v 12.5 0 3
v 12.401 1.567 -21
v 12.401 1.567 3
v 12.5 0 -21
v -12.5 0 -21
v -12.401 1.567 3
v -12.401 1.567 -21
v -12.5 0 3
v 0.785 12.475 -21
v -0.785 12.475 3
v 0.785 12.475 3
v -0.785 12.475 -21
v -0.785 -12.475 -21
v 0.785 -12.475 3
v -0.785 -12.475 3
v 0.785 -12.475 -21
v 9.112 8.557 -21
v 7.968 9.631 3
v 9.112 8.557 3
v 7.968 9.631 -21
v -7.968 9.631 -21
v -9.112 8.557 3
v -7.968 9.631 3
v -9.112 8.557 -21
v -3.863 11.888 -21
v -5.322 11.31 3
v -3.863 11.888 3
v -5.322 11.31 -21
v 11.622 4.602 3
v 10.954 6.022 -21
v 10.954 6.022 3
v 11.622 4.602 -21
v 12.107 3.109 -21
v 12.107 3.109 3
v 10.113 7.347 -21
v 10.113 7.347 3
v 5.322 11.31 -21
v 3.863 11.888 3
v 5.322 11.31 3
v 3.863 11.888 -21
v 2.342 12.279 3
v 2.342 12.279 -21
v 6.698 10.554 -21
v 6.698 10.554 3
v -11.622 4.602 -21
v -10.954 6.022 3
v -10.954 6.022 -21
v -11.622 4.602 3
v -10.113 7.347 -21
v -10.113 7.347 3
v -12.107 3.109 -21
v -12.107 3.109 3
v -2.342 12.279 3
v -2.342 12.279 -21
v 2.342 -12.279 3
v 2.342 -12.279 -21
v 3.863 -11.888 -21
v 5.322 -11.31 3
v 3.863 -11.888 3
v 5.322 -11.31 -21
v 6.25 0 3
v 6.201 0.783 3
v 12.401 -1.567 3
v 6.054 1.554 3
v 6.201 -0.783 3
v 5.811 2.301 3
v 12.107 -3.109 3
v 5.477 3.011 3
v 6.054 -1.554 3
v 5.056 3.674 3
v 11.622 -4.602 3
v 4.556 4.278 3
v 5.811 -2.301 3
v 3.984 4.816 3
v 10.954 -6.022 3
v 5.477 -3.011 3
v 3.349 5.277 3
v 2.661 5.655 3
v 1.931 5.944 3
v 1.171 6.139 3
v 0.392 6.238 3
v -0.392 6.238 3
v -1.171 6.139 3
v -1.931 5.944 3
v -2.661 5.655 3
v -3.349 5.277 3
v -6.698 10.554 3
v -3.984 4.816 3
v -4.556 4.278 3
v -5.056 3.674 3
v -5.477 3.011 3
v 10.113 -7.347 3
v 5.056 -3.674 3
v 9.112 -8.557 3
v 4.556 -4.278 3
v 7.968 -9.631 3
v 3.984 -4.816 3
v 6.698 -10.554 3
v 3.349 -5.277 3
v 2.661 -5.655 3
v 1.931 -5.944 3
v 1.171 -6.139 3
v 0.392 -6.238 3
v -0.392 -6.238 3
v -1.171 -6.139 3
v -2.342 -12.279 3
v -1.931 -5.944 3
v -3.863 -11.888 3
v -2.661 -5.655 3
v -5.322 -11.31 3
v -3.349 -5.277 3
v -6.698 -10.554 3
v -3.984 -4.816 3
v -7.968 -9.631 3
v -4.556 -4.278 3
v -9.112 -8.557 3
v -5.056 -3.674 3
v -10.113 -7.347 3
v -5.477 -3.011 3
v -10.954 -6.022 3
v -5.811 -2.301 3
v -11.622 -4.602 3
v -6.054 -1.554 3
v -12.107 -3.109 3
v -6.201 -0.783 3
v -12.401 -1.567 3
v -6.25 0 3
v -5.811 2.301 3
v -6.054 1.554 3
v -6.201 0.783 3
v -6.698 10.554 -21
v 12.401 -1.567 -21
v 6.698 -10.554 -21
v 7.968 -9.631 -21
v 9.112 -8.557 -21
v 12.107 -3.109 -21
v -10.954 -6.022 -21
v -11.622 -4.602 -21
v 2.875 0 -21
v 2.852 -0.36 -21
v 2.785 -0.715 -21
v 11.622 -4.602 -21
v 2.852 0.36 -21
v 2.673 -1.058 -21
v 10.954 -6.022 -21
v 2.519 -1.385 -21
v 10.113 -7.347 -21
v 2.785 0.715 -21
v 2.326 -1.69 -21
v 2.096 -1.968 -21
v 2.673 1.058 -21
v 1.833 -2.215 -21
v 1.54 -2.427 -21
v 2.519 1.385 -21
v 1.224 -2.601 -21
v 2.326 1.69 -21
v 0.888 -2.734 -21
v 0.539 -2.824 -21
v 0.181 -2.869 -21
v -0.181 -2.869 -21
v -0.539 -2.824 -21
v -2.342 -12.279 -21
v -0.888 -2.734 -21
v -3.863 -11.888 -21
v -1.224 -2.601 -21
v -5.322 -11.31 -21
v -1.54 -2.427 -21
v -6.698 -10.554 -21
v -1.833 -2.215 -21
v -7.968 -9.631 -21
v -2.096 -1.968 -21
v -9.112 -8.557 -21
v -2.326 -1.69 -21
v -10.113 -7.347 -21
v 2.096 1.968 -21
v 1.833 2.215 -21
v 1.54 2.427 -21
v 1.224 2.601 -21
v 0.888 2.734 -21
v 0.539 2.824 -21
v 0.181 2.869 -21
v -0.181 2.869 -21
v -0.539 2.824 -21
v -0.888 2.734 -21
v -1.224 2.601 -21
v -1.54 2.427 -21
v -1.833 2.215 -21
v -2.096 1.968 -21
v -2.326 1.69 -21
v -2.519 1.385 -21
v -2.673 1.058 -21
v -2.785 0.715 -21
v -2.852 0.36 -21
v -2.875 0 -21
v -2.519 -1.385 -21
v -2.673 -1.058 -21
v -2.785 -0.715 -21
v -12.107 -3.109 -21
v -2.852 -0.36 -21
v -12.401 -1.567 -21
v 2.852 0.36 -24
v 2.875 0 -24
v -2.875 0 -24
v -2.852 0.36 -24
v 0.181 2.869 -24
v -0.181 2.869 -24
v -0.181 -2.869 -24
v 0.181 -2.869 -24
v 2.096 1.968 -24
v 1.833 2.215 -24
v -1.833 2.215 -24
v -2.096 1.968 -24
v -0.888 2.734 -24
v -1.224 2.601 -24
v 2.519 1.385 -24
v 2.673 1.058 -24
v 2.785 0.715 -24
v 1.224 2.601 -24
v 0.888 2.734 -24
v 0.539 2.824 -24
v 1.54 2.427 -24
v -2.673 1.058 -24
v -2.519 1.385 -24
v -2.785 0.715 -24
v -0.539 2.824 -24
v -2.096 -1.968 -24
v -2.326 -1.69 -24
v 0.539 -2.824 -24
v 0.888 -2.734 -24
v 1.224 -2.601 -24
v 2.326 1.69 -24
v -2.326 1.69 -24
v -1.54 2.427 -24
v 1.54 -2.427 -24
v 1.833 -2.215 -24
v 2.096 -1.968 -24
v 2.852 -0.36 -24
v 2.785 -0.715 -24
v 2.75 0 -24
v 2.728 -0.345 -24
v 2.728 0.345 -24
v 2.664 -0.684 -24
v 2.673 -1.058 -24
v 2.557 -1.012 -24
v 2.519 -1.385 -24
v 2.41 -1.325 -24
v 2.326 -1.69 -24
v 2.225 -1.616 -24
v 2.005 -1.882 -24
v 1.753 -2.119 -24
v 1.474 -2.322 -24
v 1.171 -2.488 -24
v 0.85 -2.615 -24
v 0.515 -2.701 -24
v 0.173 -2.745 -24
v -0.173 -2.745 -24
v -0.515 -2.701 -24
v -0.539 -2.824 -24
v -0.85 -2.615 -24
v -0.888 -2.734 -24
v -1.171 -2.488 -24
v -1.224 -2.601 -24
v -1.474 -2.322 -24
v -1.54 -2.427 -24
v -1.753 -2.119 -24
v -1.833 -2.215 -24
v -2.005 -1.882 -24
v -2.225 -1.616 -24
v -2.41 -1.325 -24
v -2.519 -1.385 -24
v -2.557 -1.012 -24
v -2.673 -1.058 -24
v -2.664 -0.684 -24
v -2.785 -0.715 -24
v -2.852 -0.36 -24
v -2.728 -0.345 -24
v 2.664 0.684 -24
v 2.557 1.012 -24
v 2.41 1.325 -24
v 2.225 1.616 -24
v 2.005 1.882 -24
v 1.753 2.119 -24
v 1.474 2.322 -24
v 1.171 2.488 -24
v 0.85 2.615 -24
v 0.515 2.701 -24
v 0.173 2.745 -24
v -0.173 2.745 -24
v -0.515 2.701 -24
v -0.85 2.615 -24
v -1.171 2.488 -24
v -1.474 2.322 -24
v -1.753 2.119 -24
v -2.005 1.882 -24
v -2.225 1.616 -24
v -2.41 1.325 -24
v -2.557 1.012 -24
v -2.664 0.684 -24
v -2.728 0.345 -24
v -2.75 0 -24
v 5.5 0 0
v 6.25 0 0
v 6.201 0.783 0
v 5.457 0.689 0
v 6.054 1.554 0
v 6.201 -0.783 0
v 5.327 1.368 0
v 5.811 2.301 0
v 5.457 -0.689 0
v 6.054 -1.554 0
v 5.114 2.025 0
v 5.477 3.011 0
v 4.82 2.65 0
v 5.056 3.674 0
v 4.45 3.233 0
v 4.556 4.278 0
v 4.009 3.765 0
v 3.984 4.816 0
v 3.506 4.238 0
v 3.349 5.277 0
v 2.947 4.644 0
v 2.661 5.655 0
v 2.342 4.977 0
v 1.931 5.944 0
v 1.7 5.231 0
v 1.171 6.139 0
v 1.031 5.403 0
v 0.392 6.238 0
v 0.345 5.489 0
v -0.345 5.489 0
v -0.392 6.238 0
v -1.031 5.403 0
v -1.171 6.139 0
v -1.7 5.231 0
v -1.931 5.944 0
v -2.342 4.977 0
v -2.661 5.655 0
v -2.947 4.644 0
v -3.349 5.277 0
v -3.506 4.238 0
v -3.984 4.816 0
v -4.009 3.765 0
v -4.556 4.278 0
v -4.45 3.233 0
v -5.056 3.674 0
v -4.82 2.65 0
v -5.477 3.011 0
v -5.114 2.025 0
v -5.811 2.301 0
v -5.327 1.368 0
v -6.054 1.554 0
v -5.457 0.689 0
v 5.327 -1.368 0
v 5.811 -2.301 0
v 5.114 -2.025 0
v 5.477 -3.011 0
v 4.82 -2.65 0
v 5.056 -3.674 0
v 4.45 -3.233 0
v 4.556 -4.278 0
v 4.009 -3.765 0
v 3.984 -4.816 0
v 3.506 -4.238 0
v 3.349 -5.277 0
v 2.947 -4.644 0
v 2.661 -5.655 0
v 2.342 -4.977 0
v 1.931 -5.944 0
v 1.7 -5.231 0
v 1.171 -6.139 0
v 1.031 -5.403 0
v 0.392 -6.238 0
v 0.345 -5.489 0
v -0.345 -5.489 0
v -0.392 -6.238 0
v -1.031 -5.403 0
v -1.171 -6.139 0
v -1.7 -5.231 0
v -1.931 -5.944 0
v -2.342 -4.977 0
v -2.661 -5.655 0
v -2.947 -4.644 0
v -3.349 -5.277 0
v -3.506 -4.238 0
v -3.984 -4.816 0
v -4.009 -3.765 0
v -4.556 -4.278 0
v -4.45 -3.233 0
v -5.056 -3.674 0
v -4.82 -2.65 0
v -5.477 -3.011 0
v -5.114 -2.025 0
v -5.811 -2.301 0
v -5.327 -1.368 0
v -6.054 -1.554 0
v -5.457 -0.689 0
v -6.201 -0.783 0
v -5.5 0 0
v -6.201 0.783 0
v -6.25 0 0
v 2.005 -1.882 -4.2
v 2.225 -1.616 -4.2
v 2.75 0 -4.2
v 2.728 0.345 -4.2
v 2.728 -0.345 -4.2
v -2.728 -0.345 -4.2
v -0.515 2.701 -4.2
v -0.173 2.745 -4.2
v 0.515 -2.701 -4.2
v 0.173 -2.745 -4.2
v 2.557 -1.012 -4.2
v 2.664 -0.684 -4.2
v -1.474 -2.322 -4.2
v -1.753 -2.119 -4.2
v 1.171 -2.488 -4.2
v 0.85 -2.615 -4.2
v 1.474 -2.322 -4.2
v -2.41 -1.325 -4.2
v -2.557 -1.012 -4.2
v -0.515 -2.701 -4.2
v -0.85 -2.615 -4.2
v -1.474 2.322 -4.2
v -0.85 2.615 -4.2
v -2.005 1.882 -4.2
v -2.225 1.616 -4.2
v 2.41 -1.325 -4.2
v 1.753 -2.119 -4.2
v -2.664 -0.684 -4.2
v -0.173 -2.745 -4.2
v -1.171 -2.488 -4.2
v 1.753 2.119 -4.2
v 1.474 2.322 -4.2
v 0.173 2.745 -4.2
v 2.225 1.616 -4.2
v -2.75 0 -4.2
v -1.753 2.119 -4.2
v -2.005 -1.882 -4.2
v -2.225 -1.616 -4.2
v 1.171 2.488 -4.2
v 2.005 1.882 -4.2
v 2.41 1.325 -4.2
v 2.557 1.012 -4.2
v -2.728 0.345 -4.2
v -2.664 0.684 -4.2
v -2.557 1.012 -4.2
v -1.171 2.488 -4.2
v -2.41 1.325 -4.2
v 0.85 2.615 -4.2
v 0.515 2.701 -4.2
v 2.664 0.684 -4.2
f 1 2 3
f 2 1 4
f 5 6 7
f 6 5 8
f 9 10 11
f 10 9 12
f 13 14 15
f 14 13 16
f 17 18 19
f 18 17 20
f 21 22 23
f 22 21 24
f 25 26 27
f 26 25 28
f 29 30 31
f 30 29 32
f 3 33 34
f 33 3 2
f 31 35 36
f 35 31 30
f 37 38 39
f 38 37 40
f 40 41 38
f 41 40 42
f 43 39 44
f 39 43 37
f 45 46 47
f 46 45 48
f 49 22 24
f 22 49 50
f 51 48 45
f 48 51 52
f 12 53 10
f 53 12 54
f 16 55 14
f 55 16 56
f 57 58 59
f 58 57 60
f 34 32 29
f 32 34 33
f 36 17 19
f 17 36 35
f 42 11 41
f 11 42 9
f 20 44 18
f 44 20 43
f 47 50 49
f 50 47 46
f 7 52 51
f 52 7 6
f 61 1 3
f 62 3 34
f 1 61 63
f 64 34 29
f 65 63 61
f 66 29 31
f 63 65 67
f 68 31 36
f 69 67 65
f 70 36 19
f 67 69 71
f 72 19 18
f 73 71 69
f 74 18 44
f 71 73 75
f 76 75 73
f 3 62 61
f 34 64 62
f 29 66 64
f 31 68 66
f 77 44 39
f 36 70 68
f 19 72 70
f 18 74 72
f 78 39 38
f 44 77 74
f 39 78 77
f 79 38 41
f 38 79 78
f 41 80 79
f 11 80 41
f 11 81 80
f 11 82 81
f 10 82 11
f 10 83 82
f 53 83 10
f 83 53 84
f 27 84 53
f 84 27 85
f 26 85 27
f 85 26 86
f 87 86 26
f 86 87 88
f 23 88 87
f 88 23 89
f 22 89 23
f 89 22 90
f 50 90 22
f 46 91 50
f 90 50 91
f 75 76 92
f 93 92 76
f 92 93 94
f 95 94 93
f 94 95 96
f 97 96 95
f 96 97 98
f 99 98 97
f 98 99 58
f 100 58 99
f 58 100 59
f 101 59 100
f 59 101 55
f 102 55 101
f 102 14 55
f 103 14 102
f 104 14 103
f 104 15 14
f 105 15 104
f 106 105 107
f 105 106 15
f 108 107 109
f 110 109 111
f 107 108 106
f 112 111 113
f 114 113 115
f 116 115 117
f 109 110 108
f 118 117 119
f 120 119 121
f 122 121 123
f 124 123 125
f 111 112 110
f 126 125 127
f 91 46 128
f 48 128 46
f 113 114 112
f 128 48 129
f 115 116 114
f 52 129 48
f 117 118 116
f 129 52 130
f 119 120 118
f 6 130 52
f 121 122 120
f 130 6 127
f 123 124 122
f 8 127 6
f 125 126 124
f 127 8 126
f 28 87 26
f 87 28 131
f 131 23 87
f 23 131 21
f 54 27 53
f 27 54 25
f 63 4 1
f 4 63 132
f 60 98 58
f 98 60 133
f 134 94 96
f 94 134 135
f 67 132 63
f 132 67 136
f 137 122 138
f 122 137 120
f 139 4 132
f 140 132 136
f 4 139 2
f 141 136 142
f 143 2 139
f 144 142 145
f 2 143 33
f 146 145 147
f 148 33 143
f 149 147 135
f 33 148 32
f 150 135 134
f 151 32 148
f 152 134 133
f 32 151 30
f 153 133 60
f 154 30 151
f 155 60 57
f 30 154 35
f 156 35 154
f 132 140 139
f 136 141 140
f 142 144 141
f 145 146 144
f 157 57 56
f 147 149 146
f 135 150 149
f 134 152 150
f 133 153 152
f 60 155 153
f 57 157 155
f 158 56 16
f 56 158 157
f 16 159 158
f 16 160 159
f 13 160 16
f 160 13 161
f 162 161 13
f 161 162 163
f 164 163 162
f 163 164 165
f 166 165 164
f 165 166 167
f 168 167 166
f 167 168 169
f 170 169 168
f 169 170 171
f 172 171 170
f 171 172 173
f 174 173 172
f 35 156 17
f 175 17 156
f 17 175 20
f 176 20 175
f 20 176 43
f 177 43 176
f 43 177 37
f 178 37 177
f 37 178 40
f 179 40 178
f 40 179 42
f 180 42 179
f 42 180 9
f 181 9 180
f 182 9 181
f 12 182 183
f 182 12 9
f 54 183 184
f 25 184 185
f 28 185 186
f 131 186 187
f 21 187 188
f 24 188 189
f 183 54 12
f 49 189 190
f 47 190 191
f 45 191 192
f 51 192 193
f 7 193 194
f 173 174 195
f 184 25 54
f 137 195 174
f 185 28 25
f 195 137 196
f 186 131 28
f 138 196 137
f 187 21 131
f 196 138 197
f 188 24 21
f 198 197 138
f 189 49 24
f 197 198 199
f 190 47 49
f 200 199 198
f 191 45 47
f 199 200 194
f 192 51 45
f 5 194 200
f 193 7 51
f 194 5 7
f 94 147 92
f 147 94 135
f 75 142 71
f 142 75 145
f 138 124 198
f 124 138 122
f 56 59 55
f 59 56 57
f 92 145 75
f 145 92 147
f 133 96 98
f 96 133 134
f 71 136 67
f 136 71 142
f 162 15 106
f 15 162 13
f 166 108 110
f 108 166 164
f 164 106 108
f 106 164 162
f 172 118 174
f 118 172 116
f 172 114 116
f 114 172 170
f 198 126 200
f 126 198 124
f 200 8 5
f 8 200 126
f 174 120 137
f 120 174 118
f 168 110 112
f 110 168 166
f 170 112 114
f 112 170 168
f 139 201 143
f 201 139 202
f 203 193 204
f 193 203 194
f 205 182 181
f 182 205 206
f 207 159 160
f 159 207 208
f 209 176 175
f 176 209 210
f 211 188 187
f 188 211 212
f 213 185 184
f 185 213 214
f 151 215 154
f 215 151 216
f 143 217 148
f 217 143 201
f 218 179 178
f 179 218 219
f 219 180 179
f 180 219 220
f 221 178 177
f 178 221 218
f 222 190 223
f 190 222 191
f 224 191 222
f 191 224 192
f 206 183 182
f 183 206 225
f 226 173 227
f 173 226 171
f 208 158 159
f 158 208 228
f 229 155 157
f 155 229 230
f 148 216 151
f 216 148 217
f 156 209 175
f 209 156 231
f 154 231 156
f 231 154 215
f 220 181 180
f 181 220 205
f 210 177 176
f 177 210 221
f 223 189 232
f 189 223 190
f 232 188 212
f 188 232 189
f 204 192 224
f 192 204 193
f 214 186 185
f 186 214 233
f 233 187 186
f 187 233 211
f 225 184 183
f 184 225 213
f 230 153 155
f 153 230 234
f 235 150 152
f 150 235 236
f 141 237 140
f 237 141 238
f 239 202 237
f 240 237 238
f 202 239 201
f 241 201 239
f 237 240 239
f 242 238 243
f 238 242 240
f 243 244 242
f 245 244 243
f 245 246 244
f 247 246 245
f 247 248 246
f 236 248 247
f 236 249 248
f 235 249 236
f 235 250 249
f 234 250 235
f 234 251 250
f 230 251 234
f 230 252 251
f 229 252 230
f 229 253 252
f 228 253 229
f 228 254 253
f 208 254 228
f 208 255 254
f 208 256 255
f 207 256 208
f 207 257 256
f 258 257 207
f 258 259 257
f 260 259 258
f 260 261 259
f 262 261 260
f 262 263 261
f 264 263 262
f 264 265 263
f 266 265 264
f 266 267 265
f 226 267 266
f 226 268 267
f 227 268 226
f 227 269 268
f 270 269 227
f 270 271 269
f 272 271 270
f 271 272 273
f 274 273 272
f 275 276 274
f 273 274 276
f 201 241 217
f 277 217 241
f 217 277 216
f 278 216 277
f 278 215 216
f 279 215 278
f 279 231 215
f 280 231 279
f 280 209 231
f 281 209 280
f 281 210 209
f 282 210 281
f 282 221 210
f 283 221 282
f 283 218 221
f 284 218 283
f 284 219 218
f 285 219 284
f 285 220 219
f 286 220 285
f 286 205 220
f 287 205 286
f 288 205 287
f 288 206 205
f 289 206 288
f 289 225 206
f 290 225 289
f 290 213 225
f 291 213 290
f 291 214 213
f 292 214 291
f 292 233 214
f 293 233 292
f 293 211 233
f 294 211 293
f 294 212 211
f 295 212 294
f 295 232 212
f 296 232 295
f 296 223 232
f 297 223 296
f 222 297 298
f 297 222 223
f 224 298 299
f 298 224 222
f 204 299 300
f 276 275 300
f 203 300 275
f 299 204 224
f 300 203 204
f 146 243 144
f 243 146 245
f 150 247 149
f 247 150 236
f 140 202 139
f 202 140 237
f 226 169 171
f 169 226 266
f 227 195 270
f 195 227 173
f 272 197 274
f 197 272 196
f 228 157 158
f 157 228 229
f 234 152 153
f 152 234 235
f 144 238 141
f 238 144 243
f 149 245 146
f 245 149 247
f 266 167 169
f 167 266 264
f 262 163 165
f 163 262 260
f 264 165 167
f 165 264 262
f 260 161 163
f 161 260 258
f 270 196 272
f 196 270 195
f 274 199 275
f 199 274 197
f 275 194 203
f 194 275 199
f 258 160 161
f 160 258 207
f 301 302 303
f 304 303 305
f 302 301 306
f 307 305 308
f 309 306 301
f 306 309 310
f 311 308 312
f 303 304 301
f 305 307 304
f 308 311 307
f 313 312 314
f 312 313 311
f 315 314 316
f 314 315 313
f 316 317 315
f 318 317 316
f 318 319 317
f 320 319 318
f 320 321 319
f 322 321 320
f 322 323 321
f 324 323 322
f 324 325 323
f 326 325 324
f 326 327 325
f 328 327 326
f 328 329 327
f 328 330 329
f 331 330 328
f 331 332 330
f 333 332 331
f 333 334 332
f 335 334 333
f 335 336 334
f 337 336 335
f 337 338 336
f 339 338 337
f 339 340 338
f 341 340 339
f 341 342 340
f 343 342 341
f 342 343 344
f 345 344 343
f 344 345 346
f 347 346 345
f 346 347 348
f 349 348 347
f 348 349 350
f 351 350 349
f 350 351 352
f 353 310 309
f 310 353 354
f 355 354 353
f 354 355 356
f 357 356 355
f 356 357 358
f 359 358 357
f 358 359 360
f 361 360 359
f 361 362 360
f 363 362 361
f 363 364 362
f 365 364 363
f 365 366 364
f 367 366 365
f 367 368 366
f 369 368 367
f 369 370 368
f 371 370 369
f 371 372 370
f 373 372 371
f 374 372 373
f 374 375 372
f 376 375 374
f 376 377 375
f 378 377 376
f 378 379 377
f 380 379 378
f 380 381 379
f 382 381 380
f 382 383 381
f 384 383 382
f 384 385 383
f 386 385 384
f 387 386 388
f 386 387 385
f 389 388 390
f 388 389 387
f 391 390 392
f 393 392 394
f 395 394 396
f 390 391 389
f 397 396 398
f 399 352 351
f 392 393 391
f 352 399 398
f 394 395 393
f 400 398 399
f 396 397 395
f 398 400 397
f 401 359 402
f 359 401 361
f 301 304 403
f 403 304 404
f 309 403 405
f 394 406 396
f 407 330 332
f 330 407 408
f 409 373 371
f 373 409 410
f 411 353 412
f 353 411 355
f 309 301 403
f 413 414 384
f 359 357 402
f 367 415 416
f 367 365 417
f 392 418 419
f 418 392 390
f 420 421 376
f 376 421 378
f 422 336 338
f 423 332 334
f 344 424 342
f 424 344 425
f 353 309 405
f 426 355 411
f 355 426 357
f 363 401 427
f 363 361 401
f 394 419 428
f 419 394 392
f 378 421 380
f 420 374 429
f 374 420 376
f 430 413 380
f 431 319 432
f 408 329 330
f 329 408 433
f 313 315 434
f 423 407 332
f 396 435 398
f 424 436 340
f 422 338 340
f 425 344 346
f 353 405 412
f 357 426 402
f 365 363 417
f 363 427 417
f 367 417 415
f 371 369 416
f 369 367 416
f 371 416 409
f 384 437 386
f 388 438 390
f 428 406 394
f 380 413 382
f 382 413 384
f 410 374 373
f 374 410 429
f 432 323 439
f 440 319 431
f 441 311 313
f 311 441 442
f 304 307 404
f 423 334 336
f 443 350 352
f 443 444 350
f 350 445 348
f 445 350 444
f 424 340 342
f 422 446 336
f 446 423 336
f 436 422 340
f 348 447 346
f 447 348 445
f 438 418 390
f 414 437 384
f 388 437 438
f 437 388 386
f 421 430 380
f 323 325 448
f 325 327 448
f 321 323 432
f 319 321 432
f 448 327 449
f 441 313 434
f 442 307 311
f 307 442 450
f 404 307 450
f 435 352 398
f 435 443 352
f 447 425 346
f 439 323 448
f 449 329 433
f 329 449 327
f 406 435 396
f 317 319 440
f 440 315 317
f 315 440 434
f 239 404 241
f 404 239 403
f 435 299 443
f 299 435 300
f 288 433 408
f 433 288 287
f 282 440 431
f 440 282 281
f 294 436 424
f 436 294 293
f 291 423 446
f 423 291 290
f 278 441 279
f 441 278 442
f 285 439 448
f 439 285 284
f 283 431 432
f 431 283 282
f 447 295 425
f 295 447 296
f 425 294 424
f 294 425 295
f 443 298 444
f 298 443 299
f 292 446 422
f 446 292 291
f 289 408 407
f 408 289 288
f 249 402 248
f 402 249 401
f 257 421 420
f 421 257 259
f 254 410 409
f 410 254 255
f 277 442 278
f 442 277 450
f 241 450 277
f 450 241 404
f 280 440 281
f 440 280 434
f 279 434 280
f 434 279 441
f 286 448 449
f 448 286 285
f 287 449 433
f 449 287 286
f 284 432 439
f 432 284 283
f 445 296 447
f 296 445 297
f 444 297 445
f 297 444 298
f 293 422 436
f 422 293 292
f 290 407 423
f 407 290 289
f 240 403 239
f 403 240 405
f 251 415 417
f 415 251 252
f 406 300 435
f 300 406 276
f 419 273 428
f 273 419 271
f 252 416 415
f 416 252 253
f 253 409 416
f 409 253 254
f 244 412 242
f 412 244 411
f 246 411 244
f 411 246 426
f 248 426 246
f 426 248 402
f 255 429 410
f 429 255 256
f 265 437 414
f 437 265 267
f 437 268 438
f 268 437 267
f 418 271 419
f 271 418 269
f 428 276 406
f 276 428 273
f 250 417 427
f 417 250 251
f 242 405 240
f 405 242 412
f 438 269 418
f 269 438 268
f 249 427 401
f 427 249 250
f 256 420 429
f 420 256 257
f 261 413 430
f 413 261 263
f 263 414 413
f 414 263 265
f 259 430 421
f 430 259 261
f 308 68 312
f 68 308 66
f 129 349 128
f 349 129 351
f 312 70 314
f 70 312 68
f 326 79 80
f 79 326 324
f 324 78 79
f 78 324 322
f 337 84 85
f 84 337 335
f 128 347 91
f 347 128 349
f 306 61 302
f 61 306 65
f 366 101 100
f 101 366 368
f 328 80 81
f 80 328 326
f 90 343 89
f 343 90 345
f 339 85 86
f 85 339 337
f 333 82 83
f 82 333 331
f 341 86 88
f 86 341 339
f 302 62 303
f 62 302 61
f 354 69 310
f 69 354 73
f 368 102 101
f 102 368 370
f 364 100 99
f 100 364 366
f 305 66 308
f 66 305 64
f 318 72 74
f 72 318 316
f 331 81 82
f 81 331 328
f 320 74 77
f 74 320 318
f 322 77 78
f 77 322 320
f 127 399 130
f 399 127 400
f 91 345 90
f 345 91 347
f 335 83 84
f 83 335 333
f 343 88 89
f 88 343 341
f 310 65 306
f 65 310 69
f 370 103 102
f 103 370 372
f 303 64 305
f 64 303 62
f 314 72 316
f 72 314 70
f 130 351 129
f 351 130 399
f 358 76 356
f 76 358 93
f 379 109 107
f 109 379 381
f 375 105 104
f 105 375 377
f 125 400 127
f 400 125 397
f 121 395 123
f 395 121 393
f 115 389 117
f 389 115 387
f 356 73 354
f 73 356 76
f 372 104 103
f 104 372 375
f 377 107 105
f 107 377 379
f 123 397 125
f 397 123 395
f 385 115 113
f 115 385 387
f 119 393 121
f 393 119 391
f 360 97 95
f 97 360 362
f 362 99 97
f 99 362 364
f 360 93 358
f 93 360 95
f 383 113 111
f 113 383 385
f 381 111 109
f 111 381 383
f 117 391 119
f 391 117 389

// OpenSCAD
$fn = 50;

difference() {
	union() {
		translate(v = [0, 0, -21.0]) {
			cylinder(h = 24, r = 12.5);
		}
		#translate(v = [0, 0, -24.0]) {
			cylinder(h = 24, r = 2.875);
		}
	}
	union() {
		translate(v = [0, 0, 0]) {
			rotate(a = [0, 0, 0]) {
				difference() {
					union() {
						translate(v = [0, 0, -24.0]) {
							cylinder(h = 24, r = 2.25);
						}
						translate(v = [0, 0, -4.2]) {
							cylinder(h = 4.2, r1 = 2.75, r2 = 5.5);
						}
						translate(v = [0, 0, -24.0]) {
							cylinder(h = 24, r = 2.75);
						}
						translate(v = [0, 0, -24.0]) {
							cylinder(h = 24, r = 2.25);
						}
					}
					union();
				}
			}
		}
		#cylinder(h = 3, r = 6.25);
	}
}
